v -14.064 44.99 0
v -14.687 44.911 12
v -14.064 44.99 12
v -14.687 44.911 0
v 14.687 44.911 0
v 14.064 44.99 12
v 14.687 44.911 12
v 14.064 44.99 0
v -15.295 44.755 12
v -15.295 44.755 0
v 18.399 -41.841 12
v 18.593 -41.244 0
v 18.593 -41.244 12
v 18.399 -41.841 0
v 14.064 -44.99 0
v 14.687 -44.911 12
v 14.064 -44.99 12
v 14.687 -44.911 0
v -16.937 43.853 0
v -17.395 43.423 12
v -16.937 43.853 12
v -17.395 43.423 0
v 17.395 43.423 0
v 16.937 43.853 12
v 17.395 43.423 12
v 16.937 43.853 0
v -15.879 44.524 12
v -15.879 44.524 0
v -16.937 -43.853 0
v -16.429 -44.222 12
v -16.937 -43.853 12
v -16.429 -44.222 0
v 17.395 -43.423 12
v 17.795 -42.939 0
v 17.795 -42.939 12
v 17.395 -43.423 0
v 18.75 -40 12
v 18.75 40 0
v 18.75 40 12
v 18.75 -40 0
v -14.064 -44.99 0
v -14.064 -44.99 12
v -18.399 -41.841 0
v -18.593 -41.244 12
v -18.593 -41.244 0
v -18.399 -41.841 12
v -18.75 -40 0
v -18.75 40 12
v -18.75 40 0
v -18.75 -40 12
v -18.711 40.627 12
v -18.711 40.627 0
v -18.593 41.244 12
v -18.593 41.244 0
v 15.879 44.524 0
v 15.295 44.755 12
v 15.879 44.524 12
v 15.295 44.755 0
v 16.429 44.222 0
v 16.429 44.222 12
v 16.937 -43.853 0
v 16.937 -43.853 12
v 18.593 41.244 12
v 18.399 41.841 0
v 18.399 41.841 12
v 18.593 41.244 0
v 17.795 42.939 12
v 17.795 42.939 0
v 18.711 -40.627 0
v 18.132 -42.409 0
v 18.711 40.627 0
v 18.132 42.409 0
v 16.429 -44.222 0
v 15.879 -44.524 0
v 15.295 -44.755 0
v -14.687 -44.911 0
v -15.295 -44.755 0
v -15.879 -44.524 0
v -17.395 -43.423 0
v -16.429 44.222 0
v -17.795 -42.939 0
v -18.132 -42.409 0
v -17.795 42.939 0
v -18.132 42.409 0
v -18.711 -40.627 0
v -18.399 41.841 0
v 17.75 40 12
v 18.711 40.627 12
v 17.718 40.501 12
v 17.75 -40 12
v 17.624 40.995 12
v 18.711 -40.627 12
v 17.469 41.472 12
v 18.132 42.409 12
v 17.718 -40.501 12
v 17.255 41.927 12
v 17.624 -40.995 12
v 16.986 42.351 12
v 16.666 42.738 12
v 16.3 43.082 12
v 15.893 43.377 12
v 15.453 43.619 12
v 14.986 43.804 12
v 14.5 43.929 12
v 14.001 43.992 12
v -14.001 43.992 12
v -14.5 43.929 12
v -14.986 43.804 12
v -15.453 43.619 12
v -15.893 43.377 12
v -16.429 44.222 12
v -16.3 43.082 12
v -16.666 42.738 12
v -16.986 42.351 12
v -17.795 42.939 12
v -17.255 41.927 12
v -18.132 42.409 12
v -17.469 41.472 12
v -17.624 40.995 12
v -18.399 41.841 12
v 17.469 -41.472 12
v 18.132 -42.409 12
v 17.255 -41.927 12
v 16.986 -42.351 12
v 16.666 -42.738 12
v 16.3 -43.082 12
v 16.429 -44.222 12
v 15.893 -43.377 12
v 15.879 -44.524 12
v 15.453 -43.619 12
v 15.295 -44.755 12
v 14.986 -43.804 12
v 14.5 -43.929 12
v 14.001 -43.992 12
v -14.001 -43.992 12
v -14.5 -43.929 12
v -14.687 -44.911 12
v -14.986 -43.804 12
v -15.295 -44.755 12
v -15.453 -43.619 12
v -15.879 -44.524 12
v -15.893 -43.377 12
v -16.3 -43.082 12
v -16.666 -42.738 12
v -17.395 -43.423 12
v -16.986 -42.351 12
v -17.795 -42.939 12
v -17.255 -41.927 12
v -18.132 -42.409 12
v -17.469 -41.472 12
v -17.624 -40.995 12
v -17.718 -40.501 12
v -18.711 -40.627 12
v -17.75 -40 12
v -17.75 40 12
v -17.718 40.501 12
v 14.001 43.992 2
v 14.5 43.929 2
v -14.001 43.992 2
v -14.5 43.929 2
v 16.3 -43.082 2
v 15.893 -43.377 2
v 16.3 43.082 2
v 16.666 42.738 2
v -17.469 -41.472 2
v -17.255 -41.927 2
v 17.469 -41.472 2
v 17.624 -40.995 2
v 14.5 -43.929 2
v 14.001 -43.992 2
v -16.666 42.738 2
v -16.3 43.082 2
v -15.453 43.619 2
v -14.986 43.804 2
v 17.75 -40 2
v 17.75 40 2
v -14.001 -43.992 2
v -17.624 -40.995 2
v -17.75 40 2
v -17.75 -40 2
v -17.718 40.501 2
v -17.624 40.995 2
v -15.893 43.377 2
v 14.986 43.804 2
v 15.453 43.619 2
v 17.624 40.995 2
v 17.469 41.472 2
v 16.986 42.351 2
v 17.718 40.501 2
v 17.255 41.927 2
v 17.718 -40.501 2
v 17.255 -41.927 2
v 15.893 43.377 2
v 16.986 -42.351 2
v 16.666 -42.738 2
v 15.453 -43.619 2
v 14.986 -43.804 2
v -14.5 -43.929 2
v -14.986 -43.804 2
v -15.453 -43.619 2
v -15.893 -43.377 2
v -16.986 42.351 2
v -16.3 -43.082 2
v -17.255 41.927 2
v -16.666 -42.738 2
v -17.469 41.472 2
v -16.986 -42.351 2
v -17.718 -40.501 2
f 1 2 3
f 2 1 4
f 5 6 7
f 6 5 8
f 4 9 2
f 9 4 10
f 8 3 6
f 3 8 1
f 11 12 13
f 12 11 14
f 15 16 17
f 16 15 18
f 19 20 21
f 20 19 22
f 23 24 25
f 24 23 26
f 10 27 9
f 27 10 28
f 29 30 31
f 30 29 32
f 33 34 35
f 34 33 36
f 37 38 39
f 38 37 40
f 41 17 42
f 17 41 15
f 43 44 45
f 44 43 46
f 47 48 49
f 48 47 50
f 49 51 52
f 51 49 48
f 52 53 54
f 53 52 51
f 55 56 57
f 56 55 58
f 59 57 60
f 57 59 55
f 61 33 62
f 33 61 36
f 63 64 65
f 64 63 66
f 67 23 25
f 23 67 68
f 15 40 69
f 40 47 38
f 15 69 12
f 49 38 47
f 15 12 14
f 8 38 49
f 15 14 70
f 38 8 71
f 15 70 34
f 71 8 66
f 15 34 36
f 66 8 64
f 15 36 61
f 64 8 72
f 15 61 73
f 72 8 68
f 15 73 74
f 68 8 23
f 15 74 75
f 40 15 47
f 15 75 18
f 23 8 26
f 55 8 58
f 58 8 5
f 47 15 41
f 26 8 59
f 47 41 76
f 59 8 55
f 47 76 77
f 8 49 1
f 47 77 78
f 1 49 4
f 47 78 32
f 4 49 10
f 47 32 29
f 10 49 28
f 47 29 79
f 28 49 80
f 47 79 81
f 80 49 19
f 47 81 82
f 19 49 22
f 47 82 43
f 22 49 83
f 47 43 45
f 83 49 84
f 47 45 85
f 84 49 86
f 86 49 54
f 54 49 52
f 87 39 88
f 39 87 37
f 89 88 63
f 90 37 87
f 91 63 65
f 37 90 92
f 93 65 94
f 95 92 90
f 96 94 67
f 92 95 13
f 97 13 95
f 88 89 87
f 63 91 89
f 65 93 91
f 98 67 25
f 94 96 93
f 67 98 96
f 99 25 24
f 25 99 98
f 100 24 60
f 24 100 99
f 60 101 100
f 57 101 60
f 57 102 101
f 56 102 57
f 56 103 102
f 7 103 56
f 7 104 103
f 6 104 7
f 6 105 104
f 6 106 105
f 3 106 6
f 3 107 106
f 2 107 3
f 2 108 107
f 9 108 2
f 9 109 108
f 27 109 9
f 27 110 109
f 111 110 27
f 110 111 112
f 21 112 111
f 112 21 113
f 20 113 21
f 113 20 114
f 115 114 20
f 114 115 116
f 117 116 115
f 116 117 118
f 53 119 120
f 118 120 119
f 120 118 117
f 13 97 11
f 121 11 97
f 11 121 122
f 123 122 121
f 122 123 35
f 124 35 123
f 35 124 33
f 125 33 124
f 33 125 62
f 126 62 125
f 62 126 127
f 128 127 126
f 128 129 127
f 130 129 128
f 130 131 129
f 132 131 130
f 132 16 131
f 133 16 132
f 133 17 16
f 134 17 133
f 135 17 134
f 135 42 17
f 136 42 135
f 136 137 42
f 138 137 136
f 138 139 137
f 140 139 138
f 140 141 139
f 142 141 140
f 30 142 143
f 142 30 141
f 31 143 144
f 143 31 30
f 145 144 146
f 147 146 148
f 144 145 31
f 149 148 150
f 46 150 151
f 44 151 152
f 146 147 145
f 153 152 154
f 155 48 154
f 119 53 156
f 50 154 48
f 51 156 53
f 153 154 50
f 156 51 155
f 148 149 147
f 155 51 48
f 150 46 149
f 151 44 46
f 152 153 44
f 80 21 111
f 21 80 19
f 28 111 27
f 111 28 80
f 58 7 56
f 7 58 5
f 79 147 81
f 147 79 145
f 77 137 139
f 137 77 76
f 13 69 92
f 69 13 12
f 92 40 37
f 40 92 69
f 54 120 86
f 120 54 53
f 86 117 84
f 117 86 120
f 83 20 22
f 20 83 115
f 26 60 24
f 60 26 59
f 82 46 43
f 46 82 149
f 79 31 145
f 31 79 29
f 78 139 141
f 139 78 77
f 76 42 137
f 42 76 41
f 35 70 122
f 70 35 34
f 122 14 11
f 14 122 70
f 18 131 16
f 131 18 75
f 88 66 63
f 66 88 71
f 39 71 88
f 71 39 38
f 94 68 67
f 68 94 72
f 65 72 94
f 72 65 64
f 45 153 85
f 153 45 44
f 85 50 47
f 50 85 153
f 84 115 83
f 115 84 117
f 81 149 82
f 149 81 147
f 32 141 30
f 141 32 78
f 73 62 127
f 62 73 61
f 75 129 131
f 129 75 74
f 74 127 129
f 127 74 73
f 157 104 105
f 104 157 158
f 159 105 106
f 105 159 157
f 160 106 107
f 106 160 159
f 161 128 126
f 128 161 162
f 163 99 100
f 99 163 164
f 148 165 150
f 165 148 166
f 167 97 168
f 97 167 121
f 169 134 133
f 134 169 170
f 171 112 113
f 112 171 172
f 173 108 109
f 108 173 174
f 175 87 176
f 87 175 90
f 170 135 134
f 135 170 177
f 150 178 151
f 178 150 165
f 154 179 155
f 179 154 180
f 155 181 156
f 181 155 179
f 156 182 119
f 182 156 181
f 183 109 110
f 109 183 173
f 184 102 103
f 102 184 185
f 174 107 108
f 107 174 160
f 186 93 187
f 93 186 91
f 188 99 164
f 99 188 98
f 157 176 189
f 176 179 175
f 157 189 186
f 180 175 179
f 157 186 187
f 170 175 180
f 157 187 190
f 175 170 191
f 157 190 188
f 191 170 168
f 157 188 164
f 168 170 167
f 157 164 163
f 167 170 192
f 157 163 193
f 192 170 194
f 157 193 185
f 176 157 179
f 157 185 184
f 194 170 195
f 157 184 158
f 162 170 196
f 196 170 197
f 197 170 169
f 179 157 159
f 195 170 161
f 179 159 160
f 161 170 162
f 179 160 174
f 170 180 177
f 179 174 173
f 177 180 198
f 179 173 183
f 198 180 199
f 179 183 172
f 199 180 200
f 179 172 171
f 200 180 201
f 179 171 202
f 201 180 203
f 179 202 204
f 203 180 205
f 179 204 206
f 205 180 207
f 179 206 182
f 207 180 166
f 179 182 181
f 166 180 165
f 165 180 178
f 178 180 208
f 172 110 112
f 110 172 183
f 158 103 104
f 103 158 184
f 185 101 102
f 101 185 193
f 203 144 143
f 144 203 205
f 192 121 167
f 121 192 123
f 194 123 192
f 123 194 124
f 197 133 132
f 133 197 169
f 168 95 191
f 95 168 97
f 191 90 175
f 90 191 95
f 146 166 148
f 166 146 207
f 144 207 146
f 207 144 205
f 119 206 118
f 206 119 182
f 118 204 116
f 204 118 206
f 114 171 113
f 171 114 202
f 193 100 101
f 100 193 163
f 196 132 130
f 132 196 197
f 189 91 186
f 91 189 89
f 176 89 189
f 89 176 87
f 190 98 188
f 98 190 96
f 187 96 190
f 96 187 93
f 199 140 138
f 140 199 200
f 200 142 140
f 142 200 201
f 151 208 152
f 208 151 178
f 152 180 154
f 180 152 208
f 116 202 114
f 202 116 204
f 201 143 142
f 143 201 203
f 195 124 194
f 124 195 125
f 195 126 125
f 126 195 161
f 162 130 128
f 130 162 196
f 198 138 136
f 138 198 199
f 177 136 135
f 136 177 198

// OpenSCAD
$fn = 50;


difference() {
	union() {
		hull() {
			translate(v = [-13.7500000000, 40.0000000000, 0]) {
				cylinder(h = 12, r = 5);
			}
			translate(v = [13.7500000000, 40.0000000000, 0]) {
				cylinder(h = 12, r = 5);
			}
			translate(v = [-13.7500000000, -40.0000000000, 0]) {
				cylinder(h = 12, r = 5);
			}
			translate(v = [13.7500000000, -40.0000000000, 0]) {
				cylinder(h = 12, r = 5);
			}
		}
	}
	union() {
		translate(v = [0, 0, 2]) {
			hull() {
				translate(v = [-13.7500000000, 40.0000000000, 0]) {
					cylinder(h = 10, r = 4);
				}
				translate(v = [13.7500000000, 40.0000000000, 0]) {
					cylinder(h = 10, r = 4);
				}
				translate(v = [-13.7500000000, -40.0000000000, 0]) {
					cylinder(h = 10, r = 4);
				}
				translate(v = [13.7500000000, -40.0000000000, 0]) {
					cylinder(h = 10, r = 4);
				}
			}
		}
	}
}
